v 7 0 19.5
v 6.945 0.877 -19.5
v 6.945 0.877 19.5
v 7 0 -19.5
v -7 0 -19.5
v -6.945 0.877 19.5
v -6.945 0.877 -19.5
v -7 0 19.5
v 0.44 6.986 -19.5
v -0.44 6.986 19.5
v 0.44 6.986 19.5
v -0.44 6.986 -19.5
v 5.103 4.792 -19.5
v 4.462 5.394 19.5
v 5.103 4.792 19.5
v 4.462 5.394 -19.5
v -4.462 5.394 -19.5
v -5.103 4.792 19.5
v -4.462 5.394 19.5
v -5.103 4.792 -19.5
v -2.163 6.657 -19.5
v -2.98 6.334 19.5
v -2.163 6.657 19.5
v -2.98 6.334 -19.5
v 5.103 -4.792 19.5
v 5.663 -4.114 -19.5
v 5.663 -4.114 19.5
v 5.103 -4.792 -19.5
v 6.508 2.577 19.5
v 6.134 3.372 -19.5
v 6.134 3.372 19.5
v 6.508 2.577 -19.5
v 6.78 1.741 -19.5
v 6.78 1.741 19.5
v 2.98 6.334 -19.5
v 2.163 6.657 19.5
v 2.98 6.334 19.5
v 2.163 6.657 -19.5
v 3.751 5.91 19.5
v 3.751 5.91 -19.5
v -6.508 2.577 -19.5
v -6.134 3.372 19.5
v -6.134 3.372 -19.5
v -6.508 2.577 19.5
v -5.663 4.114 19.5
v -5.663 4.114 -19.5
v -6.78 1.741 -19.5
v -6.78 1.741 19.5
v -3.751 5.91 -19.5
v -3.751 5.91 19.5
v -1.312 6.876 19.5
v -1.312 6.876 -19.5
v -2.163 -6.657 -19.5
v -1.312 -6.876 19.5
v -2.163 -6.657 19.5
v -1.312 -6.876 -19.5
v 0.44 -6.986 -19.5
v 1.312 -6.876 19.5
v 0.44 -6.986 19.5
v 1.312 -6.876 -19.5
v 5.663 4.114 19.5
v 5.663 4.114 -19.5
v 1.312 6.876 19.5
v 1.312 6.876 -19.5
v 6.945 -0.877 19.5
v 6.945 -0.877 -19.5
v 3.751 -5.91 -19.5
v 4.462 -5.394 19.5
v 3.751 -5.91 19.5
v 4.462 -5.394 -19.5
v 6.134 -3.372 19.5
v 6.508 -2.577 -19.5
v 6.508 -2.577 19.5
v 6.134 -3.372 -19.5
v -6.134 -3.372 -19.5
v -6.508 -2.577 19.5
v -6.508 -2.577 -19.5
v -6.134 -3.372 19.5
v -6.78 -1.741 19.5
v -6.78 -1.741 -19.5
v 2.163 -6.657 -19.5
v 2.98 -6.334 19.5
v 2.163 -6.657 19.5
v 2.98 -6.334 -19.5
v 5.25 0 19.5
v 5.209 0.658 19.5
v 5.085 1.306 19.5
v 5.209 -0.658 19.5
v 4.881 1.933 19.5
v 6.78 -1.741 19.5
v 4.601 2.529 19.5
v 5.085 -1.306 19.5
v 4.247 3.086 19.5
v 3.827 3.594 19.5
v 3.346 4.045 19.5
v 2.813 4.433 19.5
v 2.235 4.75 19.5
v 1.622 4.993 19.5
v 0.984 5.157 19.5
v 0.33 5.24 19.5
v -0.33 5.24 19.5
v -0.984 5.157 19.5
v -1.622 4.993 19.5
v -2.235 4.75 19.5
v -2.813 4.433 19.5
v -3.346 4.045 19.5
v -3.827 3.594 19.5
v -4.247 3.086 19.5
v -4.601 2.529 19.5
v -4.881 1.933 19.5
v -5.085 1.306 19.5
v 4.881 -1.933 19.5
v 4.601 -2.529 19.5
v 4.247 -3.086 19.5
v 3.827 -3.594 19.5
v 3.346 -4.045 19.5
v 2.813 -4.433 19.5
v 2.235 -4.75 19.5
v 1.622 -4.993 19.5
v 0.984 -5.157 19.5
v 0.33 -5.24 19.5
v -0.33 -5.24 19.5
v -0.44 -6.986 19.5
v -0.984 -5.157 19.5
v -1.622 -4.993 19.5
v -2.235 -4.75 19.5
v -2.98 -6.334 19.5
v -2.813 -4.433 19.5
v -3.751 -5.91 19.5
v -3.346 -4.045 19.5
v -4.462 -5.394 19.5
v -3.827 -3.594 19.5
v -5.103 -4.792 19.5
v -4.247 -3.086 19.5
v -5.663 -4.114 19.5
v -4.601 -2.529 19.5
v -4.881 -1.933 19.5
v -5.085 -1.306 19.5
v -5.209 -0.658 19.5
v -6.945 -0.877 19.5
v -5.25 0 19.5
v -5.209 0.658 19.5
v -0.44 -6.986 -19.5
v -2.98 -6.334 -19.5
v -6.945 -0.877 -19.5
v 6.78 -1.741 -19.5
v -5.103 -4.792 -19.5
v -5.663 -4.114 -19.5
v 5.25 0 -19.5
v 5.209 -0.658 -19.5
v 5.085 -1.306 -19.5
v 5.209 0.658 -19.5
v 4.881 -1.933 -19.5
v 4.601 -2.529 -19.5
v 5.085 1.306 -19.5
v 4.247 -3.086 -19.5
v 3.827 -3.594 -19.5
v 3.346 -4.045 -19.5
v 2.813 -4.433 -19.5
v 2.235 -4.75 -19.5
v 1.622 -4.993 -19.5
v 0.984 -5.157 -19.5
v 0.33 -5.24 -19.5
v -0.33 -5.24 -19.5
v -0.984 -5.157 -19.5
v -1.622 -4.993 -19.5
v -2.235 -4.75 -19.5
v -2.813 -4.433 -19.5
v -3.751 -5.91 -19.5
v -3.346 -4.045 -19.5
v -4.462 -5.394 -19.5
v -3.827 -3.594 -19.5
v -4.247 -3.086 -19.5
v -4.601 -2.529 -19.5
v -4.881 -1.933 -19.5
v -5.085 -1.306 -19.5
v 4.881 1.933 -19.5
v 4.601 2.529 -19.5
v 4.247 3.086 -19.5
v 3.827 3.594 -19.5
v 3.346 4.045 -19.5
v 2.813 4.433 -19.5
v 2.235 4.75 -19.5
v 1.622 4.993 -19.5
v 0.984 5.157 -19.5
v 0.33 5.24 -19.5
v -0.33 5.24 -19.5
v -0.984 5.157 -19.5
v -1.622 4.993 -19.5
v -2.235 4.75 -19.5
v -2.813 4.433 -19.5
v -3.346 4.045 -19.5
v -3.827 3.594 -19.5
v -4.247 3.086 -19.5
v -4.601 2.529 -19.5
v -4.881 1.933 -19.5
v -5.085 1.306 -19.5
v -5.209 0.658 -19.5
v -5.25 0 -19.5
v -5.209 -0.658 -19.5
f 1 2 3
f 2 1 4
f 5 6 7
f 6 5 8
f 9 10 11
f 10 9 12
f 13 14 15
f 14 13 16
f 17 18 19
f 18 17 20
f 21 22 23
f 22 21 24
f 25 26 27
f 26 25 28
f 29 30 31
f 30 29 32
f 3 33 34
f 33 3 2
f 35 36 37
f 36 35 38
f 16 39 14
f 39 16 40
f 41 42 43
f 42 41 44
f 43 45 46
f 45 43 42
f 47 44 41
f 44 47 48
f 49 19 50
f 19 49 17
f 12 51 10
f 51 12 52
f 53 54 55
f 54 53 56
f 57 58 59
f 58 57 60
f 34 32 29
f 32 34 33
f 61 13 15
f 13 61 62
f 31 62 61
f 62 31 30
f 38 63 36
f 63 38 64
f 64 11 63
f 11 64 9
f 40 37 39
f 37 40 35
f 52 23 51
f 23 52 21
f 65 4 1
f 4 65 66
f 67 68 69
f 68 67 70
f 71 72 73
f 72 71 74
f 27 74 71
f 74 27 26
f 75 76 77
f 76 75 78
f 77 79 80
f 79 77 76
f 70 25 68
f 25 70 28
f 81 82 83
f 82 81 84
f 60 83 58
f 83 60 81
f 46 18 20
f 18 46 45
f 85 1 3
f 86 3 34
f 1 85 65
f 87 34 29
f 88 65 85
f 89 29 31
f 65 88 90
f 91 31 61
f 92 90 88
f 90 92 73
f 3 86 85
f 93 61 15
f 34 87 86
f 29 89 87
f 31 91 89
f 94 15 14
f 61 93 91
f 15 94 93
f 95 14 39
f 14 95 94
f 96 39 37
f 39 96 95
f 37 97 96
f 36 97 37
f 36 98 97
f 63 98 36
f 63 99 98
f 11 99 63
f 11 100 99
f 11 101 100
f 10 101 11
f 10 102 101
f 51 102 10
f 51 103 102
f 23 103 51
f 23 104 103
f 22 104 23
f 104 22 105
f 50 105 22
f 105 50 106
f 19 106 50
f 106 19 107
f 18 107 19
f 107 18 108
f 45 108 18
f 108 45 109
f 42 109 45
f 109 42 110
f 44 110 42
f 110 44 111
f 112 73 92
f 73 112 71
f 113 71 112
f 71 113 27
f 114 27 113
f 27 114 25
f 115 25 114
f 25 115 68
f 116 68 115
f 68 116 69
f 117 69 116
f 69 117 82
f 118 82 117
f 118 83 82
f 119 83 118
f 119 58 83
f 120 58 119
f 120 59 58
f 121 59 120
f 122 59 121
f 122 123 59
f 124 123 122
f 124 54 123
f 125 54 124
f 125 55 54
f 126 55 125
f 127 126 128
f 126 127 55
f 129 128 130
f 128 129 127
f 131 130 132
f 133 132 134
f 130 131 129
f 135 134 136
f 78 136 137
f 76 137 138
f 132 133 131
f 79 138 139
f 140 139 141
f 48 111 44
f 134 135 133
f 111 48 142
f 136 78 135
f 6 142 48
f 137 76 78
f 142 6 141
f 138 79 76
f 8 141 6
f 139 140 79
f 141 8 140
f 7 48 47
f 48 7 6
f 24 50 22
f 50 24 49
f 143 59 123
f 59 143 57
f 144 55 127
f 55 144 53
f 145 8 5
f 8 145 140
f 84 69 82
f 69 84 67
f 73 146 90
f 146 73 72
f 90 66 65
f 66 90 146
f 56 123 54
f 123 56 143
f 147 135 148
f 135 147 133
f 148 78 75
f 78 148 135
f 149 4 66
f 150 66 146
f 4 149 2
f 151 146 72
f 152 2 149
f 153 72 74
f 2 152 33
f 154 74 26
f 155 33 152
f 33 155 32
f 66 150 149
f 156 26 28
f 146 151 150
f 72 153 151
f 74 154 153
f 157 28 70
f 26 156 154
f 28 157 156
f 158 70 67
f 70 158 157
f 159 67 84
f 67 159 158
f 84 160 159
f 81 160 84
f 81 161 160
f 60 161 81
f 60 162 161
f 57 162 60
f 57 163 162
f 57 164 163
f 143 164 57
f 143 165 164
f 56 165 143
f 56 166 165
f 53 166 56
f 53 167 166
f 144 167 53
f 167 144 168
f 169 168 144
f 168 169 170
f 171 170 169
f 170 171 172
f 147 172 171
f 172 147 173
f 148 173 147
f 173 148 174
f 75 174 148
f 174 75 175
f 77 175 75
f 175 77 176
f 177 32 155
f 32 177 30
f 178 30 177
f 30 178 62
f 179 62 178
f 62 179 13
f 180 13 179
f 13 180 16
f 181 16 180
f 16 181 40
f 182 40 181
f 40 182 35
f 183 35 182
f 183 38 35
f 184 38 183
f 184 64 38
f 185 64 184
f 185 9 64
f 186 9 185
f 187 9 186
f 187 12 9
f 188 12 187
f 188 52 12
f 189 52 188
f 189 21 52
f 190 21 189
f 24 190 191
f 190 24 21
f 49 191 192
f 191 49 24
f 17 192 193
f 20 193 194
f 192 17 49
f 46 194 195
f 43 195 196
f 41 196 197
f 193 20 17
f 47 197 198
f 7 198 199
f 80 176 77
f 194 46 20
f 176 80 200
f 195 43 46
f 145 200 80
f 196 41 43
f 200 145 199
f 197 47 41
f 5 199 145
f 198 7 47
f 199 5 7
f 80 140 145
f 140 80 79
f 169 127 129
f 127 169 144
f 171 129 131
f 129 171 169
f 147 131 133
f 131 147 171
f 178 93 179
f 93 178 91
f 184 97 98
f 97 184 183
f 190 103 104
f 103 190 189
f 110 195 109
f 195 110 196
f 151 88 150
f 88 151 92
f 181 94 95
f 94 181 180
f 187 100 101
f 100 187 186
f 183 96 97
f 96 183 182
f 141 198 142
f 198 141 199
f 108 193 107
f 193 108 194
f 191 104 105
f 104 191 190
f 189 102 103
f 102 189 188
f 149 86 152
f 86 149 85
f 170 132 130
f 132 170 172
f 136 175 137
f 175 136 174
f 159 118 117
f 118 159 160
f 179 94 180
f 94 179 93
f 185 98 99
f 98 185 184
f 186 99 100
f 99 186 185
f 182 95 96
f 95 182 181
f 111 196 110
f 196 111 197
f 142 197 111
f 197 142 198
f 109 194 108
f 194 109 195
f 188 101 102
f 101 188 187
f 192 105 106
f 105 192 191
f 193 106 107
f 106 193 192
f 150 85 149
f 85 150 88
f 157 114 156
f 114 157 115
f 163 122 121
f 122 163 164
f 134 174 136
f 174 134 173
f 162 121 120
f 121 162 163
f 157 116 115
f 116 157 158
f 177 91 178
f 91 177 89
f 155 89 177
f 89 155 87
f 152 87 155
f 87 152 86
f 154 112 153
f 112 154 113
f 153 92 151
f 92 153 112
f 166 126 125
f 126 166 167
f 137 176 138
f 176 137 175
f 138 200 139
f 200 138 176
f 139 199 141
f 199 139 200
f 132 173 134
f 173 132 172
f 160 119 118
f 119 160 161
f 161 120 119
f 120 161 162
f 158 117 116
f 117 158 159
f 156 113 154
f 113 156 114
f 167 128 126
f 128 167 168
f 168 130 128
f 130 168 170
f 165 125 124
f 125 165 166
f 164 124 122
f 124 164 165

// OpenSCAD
$fn = 50;


difference() {
	union() {
		translate(v = [0, 0, -19.5000000000]) {
			cylinder(h = 39, r = 7.0000000000);
		}
	}
	union() {
		translate(v = [0, 0, -100.0000000000]) {
			cylinder(h = 200, r = 5.2500000000);
		}
	}
}
